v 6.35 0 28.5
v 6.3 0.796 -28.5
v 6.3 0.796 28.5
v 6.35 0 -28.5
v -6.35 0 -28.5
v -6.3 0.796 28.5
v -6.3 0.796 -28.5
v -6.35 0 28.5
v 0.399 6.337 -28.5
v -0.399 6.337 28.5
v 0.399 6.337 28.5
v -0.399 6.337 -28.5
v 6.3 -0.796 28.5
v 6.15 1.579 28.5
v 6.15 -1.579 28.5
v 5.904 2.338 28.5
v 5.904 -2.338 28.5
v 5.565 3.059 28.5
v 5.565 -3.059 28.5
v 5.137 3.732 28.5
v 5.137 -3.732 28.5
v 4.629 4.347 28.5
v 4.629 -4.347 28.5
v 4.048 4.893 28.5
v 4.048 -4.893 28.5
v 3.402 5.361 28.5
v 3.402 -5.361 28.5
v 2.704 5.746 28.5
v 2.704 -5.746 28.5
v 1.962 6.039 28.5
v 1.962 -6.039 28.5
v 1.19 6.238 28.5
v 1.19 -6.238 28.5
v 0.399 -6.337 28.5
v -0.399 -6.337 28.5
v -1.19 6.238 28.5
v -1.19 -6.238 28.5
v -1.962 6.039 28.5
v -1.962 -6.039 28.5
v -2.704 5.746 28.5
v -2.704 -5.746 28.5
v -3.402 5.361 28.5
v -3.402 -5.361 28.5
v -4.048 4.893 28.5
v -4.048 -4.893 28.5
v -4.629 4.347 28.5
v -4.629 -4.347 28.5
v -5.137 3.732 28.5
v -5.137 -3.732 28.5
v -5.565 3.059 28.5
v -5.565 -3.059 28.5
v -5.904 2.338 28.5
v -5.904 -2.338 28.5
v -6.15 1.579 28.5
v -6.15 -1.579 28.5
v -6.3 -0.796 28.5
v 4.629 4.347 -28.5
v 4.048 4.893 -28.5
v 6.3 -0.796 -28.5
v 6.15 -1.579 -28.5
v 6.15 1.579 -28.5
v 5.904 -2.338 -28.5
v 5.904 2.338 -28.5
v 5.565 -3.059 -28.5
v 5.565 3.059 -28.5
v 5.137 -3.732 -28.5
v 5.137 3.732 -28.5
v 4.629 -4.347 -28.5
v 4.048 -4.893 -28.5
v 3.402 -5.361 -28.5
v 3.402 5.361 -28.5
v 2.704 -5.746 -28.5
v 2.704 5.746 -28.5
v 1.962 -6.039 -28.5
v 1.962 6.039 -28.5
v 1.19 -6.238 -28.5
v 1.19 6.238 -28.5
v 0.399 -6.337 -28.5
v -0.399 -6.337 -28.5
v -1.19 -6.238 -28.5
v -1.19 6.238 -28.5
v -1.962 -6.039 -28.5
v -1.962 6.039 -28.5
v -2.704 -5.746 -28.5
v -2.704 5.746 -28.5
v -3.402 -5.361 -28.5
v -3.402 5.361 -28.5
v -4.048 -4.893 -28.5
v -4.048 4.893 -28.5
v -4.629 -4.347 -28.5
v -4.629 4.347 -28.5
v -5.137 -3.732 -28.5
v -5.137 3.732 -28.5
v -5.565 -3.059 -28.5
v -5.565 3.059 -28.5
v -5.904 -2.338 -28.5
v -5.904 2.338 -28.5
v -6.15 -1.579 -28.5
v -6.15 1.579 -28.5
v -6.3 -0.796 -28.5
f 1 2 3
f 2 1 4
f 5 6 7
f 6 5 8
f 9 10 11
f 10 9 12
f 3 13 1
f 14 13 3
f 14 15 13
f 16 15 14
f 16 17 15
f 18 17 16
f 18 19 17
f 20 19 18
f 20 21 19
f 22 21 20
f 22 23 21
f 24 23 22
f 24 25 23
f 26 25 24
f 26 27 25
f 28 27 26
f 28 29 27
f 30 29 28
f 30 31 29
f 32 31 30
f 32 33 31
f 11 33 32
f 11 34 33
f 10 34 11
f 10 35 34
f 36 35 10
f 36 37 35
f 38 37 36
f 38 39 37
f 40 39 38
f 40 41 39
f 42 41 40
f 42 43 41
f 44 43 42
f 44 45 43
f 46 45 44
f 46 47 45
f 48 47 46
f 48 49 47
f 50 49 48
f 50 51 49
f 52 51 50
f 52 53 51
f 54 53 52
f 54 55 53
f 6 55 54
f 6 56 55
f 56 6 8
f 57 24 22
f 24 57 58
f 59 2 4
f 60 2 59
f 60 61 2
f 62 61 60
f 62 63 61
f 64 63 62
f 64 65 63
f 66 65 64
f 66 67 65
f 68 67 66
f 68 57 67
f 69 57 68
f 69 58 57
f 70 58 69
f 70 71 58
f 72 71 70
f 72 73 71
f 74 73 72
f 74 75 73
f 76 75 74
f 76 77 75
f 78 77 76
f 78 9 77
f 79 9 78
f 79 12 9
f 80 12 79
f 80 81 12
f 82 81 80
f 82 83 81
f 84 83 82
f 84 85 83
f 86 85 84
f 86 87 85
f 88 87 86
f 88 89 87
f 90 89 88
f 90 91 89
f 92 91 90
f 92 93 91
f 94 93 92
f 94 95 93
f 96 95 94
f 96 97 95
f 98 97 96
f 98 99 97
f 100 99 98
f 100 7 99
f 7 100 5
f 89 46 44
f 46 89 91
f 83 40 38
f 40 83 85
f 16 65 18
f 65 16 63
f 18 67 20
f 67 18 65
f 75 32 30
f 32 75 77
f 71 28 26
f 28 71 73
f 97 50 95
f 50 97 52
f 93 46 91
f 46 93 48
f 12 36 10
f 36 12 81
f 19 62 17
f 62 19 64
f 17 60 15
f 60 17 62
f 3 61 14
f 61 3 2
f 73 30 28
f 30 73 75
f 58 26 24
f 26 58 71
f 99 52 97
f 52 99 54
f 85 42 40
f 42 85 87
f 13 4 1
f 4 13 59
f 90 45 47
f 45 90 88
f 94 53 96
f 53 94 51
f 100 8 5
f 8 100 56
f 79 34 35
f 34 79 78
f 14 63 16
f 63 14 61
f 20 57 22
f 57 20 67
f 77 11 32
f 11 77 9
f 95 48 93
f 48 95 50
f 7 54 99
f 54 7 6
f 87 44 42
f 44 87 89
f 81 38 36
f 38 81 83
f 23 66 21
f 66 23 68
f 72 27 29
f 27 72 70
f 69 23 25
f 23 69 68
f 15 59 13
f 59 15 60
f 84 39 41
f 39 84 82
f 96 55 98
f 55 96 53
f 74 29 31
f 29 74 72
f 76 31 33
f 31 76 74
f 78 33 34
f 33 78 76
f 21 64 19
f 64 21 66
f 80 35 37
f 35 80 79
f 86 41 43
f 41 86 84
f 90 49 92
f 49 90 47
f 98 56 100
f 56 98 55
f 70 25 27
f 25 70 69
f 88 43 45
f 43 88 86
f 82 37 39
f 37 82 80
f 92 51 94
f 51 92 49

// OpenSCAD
$fn = 50;


difference() {
	union() {
		translate(v = [0, 0, -28.5000000000]) {
			cylinder(h = 57, r = 6.3500000000);
		}
	}
	union() {
		translate(v = [0, 0, -100.0000000000]) {
			cylinder(h = 200, r = 0);
		}
	}
}
